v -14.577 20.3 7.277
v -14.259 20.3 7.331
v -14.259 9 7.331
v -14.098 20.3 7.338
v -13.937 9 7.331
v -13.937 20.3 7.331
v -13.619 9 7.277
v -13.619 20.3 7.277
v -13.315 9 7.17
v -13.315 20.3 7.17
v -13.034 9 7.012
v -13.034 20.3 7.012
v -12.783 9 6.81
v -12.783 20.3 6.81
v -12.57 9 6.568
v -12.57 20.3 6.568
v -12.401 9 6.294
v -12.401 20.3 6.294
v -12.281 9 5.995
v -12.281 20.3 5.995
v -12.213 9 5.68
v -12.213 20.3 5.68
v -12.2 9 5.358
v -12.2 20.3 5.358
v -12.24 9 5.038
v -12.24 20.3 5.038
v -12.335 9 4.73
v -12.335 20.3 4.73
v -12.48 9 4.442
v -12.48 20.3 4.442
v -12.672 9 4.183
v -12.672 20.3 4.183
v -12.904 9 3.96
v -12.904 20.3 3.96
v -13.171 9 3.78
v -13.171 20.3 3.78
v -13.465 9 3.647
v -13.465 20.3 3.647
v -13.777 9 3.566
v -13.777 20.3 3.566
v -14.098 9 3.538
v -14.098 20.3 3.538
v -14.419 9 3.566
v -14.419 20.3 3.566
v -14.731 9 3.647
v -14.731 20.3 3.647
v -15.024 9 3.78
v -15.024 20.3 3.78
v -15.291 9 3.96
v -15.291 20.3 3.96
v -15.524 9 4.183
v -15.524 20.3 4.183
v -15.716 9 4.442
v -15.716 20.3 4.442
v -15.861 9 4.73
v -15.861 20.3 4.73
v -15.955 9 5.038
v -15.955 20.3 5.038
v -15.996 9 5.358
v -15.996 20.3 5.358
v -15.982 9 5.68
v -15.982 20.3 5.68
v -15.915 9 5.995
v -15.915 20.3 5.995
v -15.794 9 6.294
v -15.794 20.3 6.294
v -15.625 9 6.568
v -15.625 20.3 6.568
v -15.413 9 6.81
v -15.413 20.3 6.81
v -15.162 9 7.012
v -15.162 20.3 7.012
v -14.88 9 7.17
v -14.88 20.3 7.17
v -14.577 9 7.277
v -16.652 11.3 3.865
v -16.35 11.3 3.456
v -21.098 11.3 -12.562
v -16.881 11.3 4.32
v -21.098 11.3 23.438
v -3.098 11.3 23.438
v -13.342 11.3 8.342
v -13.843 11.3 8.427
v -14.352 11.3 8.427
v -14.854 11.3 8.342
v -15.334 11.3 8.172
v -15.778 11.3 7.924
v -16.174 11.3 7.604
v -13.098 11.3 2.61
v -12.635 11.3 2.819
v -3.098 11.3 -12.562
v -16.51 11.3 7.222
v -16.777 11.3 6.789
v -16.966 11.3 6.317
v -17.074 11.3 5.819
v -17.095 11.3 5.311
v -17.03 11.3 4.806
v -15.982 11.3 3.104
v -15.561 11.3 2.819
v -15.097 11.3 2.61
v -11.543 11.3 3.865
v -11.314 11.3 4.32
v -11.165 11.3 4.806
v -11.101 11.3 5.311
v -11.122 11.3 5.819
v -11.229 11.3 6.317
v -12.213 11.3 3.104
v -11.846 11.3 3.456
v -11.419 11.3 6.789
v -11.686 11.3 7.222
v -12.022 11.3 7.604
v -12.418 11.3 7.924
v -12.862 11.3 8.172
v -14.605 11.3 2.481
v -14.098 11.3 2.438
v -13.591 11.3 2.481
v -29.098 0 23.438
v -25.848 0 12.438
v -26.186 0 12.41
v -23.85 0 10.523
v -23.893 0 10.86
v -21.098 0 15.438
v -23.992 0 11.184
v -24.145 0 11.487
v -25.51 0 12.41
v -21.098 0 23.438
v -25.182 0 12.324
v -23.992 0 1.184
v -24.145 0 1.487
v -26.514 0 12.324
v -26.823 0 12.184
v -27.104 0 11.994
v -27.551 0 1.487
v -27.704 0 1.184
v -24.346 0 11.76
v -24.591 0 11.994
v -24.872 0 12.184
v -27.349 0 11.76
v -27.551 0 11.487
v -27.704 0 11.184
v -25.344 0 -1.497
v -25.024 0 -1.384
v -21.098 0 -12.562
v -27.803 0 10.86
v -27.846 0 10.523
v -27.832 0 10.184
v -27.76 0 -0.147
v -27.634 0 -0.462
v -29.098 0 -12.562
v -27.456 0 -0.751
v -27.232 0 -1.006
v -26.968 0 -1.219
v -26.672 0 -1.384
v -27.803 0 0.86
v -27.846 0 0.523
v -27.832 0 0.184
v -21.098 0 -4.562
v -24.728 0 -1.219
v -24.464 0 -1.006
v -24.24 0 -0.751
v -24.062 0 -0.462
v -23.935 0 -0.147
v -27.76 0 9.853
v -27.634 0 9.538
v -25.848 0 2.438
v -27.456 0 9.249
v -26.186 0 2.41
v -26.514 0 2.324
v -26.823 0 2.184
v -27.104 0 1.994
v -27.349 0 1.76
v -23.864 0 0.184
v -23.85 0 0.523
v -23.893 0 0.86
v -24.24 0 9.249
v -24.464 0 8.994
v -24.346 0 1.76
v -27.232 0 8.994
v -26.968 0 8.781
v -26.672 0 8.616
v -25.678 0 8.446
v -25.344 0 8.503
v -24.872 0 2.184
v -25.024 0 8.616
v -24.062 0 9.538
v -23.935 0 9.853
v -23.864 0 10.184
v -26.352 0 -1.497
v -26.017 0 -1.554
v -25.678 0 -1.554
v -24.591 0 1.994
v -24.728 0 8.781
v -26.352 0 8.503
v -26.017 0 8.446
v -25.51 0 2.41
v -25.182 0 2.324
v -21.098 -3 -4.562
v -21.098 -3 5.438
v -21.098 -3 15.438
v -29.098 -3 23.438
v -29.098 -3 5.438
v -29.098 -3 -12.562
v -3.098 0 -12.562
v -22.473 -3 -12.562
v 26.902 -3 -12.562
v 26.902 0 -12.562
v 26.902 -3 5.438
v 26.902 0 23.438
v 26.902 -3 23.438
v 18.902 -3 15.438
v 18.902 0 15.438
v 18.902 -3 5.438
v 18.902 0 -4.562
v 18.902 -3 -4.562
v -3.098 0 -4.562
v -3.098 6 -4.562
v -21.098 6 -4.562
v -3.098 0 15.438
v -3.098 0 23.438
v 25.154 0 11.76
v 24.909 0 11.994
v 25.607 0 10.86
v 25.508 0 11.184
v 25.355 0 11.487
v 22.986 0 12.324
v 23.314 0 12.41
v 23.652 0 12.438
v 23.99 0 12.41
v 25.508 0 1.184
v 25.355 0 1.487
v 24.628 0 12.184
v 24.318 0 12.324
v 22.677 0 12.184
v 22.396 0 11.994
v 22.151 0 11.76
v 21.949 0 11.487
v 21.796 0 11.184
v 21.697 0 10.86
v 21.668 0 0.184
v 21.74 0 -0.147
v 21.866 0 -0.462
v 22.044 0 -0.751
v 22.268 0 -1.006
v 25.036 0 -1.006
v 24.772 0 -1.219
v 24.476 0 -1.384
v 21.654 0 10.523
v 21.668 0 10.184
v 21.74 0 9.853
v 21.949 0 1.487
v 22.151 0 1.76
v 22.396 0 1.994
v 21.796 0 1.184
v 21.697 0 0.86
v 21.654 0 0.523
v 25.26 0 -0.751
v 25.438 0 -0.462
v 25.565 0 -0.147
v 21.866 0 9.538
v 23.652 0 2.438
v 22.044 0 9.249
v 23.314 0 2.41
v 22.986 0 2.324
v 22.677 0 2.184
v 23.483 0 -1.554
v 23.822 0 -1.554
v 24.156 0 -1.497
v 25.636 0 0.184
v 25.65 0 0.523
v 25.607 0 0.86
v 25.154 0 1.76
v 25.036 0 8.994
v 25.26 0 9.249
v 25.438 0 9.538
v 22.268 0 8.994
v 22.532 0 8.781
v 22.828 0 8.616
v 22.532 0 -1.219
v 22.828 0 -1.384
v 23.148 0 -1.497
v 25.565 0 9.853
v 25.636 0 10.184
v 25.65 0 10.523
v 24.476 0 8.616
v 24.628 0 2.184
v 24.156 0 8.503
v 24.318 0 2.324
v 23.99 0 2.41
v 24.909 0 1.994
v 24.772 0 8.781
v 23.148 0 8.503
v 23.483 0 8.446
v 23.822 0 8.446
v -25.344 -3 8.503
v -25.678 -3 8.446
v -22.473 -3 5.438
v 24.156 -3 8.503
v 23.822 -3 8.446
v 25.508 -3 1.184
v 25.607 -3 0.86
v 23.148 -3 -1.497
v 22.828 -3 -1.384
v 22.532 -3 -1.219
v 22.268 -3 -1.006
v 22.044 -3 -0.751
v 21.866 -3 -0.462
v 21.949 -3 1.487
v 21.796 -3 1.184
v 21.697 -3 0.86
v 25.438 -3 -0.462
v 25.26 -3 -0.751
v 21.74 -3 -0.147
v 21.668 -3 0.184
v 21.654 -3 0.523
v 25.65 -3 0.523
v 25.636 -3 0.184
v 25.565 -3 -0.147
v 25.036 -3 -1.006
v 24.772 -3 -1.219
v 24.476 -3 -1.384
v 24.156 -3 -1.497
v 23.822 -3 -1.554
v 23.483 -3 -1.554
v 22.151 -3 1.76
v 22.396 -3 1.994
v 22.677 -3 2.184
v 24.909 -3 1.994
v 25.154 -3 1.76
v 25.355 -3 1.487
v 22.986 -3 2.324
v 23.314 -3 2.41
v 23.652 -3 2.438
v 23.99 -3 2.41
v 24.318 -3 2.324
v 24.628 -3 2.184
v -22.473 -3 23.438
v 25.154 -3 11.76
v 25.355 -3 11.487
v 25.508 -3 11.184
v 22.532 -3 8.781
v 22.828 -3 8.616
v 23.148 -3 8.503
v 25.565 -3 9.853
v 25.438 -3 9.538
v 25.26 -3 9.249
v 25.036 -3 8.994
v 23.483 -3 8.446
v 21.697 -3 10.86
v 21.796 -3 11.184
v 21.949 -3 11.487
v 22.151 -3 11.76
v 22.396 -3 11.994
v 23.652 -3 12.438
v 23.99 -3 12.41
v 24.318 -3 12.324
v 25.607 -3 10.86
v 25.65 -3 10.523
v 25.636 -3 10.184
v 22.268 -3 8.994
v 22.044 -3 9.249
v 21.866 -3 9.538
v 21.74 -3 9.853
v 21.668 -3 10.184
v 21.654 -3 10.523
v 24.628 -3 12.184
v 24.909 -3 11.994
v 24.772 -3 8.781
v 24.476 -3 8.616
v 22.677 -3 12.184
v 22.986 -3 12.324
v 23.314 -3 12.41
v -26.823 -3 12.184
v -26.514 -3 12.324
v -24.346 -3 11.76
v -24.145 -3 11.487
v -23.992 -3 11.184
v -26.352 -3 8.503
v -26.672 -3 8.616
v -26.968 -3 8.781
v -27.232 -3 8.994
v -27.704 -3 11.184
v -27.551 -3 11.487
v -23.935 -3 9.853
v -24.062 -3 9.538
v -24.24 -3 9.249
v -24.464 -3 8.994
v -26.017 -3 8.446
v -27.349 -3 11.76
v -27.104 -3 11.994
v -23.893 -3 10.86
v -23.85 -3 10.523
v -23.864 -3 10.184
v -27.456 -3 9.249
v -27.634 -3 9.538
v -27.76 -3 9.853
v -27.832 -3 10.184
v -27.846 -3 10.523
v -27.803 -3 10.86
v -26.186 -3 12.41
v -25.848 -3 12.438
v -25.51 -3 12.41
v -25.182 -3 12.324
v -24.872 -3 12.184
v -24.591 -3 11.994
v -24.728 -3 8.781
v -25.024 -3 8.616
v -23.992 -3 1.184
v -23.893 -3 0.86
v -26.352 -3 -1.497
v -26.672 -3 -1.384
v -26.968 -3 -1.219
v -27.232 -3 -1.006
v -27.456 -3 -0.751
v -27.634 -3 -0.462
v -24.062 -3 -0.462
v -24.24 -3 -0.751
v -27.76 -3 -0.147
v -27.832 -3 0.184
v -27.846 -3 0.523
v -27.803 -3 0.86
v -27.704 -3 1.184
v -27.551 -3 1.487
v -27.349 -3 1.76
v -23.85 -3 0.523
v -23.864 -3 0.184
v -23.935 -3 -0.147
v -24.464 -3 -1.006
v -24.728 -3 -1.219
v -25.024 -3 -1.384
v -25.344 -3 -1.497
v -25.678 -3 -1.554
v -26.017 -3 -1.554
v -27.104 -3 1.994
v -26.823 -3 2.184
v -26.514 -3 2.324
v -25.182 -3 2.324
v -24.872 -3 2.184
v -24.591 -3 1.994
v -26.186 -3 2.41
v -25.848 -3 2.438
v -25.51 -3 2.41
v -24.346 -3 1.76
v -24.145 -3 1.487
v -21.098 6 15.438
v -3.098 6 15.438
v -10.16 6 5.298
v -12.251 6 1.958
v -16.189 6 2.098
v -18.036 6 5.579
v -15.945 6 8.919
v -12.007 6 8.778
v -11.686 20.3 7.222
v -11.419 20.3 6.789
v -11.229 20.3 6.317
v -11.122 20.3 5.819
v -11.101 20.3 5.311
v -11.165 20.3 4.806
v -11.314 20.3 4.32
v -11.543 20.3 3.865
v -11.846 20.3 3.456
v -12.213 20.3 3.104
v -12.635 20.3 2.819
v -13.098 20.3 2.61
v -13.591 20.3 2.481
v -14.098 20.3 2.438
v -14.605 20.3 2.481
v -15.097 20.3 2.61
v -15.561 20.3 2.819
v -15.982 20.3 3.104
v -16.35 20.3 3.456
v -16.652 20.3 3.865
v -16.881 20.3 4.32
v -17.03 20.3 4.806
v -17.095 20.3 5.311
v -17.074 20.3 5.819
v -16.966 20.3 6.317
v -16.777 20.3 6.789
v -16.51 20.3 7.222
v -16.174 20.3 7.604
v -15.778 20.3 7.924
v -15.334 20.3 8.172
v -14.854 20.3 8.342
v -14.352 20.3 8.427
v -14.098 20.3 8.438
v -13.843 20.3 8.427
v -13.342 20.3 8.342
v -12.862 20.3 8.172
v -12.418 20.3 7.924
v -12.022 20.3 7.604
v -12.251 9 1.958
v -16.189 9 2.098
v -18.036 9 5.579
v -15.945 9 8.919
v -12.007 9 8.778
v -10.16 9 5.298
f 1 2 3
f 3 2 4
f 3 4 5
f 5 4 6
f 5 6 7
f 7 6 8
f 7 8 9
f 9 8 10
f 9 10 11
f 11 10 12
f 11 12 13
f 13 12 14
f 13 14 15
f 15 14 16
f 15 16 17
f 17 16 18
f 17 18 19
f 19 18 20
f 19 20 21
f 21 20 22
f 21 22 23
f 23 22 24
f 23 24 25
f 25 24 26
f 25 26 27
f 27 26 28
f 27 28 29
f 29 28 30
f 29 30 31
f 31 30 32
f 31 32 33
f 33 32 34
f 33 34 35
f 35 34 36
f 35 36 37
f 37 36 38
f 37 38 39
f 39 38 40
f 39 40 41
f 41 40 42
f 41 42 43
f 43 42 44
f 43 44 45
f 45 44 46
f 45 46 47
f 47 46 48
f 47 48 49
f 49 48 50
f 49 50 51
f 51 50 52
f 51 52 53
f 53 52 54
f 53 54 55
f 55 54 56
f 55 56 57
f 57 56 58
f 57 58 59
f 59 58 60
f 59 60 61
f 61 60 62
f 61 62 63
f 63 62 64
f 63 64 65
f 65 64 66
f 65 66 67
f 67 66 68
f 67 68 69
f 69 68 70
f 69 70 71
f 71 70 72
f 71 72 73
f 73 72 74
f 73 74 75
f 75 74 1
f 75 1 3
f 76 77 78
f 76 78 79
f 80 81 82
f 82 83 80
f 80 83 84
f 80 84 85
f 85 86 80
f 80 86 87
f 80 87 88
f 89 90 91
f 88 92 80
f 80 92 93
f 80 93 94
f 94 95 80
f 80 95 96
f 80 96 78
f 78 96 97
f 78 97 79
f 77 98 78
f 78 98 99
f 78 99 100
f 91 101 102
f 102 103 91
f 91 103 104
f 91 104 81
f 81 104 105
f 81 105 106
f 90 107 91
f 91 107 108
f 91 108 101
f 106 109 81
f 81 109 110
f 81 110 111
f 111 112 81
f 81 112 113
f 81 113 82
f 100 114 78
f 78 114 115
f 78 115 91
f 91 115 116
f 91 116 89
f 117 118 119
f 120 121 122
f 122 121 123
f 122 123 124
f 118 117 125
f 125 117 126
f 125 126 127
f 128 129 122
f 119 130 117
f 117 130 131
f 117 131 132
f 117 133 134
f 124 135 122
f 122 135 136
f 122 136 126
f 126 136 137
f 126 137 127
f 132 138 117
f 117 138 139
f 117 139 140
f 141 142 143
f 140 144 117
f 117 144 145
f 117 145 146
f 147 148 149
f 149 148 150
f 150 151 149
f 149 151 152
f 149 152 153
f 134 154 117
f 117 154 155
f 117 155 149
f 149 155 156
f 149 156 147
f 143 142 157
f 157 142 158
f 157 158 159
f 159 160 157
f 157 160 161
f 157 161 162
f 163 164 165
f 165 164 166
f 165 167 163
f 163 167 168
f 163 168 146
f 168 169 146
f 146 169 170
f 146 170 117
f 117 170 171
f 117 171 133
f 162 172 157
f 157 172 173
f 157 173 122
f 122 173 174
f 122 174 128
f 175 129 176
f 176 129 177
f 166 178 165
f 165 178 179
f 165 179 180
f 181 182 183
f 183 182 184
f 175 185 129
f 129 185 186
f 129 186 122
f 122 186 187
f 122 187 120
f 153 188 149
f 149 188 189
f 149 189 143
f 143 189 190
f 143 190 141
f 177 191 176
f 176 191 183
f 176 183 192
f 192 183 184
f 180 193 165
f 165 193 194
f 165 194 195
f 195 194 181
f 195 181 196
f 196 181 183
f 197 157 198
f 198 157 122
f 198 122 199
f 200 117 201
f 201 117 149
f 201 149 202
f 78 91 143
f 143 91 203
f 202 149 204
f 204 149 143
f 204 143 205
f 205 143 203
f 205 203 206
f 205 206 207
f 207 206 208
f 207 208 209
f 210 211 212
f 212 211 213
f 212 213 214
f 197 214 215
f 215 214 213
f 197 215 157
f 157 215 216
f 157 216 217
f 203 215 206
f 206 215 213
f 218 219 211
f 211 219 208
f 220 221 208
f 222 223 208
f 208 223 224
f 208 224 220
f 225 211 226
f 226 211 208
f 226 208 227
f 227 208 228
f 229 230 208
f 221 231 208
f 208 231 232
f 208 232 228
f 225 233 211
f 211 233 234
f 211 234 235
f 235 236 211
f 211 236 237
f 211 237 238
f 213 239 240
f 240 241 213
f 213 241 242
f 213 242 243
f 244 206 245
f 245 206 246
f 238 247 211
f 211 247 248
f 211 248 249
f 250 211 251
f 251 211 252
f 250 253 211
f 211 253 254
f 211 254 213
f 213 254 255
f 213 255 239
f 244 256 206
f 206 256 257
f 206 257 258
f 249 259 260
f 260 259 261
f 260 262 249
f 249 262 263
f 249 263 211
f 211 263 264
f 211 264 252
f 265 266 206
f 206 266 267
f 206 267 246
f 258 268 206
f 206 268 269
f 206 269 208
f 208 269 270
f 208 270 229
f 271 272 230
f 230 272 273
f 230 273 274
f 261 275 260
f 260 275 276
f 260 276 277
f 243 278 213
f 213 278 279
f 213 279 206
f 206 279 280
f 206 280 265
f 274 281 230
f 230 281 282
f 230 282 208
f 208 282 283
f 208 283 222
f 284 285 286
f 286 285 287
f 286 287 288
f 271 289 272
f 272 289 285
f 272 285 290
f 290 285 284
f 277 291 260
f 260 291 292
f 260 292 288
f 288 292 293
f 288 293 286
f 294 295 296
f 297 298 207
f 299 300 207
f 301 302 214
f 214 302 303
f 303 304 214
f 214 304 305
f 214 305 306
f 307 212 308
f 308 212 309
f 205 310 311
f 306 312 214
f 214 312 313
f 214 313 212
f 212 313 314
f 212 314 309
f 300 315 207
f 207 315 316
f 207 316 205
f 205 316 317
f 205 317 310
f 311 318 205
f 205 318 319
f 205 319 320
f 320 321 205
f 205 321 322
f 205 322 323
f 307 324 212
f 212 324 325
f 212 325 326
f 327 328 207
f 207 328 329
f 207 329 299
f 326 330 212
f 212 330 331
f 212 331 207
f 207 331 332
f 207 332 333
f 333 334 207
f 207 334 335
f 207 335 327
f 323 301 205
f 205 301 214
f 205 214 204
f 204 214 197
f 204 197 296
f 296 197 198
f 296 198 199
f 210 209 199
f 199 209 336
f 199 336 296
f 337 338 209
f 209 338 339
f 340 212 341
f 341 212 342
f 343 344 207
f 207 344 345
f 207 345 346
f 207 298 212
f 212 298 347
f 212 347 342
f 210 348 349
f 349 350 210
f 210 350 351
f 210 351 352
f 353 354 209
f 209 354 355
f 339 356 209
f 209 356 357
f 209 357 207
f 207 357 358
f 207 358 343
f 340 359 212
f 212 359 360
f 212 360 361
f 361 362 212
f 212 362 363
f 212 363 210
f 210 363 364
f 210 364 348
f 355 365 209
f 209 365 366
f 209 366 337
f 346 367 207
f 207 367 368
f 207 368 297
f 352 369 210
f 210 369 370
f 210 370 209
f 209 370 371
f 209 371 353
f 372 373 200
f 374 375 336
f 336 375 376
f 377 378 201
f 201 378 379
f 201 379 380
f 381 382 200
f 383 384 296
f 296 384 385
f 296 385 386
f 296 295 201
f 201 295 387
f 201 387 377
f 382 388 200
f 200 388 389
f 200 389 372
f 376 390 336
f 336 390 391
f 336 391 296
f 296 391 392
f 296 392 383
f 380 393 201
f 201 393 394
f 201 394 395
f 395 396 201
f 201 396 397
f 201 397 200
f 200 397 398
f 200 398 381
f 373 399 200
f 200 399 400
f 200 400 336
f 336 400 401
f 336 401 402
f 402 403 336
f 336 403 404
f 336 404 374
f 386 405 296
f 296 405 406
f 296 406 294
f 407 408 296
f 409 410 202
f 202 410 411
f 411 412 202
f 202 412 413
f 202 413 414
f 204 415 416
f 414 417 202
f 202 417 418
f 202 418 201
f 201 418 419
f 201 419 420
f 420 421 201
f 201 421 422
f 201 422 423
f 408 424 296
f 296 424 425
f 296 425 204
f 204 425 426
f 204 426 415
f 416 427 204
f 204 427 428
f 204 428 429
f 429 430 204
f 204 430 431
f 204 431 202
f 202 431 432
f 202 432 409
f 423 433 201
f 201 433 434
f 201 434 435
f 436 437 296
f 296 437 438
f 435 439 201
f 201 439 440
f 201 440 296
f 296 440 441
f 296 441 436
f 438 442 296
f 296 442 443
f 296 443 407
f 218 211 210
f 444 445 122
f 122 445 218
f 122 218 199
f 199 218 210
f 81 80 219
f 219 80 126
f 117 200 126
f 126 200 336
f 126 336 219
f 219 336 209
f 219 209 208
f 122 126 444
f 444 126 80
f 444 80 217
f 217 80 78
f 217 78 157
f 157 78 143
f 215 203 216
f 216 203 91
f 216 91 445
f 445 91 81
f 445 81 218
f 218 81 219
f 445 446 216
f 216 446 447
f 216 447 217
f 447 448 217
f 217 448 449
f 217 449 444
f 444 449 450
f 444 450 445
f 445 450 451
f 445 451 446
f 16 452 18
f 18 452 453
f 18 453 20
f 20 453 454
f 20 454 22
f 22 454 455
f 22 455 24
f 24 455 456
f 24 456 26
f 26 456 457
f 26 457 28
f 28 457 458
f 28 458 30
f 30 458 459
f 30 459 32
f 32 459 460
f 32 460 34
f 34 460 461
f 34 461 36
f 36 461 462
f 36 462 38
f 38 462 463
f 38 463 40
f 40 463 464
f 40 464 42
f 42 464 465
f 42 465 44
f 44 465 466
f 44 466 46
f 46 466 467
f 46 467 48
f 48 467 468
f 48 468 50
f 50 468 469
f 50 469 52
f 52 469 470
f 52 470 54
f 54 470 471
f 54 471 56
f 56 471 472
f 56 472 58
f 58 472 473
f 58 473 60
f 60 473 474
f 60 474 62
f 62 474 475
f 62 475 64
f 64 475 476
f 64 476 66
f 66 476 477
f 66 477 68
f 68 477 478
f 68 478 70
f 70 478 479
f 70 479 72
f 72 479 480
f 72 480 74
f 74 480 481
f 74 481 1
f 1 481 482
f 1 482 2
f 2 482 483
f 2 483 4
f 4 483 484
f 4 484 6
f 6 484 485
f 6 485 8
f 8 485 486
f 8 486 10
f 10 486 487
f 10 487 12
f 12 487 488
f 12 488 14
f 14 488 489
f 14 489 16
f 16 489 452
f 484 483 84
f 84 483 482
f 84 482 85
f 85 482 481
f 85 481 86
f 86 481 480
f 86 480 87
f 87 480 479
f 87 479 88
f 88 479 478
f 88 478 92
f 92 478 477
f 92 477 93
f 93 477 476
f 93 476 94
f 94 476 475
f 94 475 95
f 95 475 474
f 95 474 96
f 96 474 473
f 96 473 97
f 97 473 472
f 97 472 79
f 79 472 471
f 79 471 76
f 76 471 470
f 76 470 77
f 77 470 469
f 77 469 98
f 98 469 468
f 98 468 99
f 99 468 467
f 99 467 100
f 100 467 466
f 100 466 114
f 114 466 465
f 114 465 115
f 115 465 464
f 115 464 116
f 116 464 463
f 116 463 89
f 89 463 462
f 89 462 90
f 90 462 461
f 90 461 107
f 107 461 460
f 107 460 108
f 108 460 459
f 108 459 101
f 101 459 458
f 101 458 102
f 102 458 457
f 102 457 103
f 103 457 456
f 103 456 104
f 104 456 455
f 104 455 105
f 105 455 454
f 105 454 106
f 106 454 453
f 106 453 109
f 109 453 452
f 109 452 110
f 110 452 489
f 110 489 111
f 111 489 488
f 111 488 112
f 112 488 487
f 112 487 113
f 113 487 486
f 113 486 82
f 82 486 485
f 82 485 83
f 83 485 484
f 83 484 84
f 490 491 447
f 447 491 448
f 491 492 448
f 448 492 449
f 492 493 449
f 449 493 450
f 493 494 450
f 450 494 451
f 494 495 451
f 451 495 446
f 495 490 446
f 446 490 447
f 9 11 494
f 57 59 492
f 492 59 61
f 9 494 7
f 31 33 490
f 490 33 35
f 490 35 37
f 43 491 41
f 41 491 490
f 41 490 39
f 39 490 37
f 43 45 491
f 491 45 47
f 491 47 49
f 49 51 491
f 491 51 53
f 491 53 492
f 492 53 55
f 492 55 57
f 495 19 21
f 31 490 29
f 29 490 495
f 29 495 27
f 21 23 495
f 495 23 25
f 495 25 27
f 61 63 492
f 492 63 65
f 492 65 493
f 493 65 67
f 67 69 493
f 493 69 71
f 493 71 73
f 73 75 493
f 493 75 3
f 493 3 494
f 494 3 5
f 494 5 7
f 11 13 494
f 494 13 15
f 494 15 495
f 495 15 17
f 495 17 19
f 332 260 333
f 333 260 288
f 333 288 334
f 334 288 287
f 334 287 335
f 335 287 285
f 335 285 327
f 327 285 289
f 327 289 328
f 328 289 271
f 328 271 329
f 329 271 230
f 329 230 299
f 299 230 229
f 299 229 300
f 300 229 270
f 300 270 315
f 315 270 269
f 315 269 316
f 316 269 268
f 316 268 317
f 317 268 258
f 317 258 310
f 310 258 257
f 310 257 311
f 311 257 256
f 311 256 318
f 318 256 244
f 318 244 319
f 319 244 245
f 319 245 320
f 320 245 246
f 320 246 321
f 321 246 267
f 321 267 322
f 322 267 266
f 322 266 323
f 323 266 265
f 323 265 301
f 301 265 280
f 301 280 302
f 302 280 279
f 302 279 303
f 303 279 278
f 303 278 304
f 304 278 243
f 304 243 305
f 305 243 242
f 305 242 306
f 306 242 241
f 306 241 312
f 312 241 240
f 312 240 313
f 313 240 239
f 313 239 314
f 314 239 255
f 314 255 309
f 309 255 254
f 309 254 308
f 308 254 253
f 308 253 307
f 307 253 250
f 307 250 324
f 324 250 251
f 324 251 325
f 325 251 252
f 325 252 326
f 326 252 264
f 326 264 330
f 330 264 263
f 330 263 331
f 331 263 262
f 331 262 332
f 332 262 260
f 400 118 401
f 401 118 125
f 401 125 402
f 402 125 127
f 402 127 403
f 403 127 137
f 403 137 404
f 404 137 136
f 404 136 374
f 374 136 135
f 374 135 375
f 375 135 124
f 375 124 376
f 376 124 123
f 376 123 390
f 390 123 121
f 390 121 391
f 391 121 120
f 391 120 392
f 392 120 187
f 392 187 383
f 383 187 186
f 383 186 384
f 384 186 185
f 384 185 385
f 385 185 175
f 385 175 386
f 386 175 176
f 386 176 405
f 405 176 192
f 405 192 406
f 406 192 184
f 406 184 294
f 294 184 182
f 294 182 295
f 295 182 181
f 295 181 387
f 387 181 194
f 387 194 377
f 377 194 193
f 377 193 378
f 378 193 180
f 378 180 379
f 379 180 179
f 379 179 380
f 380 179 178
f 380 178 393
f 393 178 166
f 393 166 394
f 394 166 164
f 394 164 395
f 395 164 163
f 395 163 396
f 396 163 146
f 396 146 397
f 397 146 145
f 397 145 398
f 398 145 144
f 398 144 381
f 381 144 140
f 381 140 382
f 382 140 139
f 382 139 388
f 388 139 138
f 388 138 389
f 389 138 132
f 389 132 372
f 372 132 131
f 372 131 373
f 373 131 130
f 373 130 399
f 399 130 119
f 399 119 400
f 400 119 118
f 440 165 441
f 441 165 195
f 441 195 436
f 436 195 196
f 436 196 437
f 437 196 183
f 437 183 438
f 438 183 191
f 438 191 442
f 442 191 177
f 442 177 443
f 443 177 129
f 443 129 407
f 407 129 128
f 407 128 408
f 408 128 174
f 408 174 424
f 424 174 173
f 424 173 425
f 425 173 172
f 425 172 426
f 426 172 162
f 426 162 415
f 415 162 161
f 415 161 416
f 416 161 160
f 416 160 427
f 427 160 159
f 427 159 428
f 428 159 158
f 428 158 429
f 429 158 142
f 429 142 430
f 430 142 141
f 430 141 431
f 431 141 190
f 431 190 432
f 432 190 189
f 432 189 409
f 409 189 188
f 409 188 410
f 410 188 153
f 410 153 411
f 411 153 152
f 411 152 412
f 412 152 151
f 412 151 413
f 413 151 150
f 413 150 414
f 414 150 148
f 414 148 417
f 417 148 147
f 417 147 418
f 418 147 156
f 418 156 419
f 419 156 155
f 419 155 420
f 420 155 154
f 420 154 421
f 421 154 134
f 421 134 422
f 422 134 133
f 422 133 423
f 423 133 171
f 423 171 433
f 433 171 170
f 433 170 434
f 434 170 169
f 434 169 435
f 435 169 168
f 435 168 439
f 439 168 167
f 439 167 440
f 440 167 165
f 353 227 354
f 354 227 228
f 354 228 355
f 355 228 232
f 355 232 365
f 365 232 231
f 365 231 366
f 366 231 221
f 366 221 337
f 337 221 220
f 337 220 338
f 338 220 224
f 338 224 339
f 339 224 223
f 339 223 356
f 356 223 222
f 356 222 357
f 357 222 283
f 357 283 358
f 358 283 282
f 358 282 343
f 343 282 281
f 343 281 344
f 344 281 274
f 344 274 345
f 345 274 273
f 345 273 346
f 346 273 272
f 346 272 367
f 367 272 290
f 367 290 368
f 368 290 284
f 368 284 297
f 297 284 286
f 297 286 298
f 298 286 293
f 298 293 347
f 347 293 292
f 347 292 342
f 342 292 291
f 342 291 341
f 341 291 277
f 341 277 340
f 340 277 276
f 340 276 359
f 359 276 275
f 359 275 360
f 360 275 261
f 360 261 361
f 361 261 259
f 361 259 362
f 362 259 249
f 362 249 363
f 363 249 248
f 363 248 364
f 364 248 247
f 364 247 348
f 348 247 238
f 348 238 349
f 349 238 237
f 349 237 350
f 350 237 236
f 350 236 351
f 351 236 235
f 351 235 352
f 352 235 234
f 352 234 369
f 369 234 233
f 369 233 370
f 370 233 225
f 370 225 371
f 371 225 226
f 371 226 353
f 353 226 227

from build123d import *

# Parameters (mm, degrees)
SKETCH1_W           = 8
SKETCH1_H           = 20
SKETCH1_W_2         = 56
SKETCH1_H_2         = 8
BOSS_EXTRUDE1_DEPTH = 3
SKETCH2_W           = 18
SKETCH2_H           = 8
BOSS_EXTRUDE2_DEPTH = 6
SKETCH3_W           = 18
SKETCH3_H           = 36
BOSS_EXTRUDE3_DEPTH = 5.3
SKETCH5_R           = 1.9
CUT_EXTRUDE1_DEPTH  = 5.3
SKETCH6_R           = 3
SKETCH6_R_2         = 1.9
BOSS_EXTRUDE5_DEPTH = 9
CUT_EXTRUDE2_DEPTH  = 3
SKETCH8_R           = 2
CUT_EXTRUDE3_DEPTH  = 3


with BuildPart() as part:
    # Sketch1 → Boss-Extrude1 (new body)
    with BuildSketch(Plane(origin=(0, 0, 0), x_dir=(1, 0, 0), z_dir=(0, 1, 0))):
        Polygon((-29.097818748, 12.561692374), (-29.097818748, 4.561692374), (-21.097818748, 4.561692374), (18.902181252, 4.561692374), (26.902181252, 4.561692374), (26.902181252, 12.561692374), align=None)
        with Locations((-25.097818748, -5.438307626)):
            Rectangle(SKETCH1_W, SKETCH1_H)
        with Locations((22.902181252, -5.438307626)):
            Rectangle(SKETCH1_W, SKETCH1_H)
        with Locations((-1.097818748, -19.438307626)):
            Rectangle(SKETCH1_W_2, SKETCH1_H_2)
    extrude(amount=-BOSS_EXTRUDE1_DEPTH)

    # Sketch2 → Boss-Extrude2 (add)
    with BuildSketch(Plane(origin=(0, 0, 0), x_dir=(1, 0, 0), z_dir=(0, 1, 0))):
        with Locations((-12.097818748, 8.561692374)):
            Rectangle(SKETCH2_W, SKETCH2_H)
        with Locations((-12.097818748, -19.438307626)):
            Rectangle(SKETCH2_W, SKETCH2_H)
    extrude(amount=BOSS_EXTRUDE2_DEPTH)

    # Sketch3 → Boss-Extrude3 (add)
    with BuildSketch(Plane(origin=(0, 6, 0), x_dir=(1, 0, 0), z_dir=(0, 1, 0))):
        with Locations((-12.097818748, -5.438307626)):
            Rectangle(SKETCH3_W, SKETCH3_H)
    extrude(amount=BOSS_EXTRUDE3_DEPTH)

    # Sketch5 → Cut-Extrude1 (cut)
    with BuildSketch(Plane(origin=(0, 6, 0), x_dir=(1, 0, 0), z_dir=(0, 1, 0))):
        with Locations(Location((-14.097818748, -5.438307626, 0), (0, 0, 270))):
            Circle(SKETCH5_R)
    extrude(amount=CUT_EXTRUDE1_DEPTH, mode=Mode.SUBTRACT)

    # Sketch6 → Boss-Extrude5 (add)
    with BuildSketch(Plane(origin=(0, 11.3, 0), x_dir=(1, 0, 0), z_dir=(0, 1, 0))):
        with Locations(Location((-14.097818748, -5.438307626, 0), (0, 0, 90))):
            Circle(SKETCH6_R)
        with Locations(Location((-14.097818748, -5.438307626, 0), (0, 0, 270))):
            Circle(SKETCH6_R_2, mode=Mode.SUBTRACT)
    extrude(amount=BOSS_EXTRUDE5_DEPTH)

    # Sketch7 → Cut-Extrude2 (cut)
    with BuildSketch(Plane.XZ.offset(-6)):
        Polygon((-12.250616402, 1.957625885), (-10.159858765, 5.297690913), (-12.00706111, 8.778372654), (-15.945021093, 8.918989367), (-18.03577873, 5.578924339), (-16.188576385, 2.098242598), align=None)
    extrude(amount=-CUT_EXTRUDE2_DEPTH, mode=Mode.SUBTRACT)

    # Sketch8 → Cut-Extrude3 (cut)
    with BuildSketch(Plane(origin=(0, 0, 0), x_dir=(1, 0, 0), z_dir=(0, 1, 0))):
        with Locations(Location((23.652181252, -0.438307626, 0), (0, 0, 270))):
            Circle(SKETCH8_R)
        with Locations(Location((23.652181252, -10.438307626, 0), (0, 0, 270))):
            Circle(SKETCH8_R)
        with Locations(Location((-25.847818748, -0.438307626, 0), (0, 0, 270))):
            Circle(SKETCH8_R)
        with Locations(Location((-25.847818748, -10.438307626, 0), (0, 0, 270))):
            Circle(SKETCH8_R)
    extrude(amount=-CUT_EXTRUDE3_DEPTH, mode=Mode.SUBTRACT)


solid = part.part
